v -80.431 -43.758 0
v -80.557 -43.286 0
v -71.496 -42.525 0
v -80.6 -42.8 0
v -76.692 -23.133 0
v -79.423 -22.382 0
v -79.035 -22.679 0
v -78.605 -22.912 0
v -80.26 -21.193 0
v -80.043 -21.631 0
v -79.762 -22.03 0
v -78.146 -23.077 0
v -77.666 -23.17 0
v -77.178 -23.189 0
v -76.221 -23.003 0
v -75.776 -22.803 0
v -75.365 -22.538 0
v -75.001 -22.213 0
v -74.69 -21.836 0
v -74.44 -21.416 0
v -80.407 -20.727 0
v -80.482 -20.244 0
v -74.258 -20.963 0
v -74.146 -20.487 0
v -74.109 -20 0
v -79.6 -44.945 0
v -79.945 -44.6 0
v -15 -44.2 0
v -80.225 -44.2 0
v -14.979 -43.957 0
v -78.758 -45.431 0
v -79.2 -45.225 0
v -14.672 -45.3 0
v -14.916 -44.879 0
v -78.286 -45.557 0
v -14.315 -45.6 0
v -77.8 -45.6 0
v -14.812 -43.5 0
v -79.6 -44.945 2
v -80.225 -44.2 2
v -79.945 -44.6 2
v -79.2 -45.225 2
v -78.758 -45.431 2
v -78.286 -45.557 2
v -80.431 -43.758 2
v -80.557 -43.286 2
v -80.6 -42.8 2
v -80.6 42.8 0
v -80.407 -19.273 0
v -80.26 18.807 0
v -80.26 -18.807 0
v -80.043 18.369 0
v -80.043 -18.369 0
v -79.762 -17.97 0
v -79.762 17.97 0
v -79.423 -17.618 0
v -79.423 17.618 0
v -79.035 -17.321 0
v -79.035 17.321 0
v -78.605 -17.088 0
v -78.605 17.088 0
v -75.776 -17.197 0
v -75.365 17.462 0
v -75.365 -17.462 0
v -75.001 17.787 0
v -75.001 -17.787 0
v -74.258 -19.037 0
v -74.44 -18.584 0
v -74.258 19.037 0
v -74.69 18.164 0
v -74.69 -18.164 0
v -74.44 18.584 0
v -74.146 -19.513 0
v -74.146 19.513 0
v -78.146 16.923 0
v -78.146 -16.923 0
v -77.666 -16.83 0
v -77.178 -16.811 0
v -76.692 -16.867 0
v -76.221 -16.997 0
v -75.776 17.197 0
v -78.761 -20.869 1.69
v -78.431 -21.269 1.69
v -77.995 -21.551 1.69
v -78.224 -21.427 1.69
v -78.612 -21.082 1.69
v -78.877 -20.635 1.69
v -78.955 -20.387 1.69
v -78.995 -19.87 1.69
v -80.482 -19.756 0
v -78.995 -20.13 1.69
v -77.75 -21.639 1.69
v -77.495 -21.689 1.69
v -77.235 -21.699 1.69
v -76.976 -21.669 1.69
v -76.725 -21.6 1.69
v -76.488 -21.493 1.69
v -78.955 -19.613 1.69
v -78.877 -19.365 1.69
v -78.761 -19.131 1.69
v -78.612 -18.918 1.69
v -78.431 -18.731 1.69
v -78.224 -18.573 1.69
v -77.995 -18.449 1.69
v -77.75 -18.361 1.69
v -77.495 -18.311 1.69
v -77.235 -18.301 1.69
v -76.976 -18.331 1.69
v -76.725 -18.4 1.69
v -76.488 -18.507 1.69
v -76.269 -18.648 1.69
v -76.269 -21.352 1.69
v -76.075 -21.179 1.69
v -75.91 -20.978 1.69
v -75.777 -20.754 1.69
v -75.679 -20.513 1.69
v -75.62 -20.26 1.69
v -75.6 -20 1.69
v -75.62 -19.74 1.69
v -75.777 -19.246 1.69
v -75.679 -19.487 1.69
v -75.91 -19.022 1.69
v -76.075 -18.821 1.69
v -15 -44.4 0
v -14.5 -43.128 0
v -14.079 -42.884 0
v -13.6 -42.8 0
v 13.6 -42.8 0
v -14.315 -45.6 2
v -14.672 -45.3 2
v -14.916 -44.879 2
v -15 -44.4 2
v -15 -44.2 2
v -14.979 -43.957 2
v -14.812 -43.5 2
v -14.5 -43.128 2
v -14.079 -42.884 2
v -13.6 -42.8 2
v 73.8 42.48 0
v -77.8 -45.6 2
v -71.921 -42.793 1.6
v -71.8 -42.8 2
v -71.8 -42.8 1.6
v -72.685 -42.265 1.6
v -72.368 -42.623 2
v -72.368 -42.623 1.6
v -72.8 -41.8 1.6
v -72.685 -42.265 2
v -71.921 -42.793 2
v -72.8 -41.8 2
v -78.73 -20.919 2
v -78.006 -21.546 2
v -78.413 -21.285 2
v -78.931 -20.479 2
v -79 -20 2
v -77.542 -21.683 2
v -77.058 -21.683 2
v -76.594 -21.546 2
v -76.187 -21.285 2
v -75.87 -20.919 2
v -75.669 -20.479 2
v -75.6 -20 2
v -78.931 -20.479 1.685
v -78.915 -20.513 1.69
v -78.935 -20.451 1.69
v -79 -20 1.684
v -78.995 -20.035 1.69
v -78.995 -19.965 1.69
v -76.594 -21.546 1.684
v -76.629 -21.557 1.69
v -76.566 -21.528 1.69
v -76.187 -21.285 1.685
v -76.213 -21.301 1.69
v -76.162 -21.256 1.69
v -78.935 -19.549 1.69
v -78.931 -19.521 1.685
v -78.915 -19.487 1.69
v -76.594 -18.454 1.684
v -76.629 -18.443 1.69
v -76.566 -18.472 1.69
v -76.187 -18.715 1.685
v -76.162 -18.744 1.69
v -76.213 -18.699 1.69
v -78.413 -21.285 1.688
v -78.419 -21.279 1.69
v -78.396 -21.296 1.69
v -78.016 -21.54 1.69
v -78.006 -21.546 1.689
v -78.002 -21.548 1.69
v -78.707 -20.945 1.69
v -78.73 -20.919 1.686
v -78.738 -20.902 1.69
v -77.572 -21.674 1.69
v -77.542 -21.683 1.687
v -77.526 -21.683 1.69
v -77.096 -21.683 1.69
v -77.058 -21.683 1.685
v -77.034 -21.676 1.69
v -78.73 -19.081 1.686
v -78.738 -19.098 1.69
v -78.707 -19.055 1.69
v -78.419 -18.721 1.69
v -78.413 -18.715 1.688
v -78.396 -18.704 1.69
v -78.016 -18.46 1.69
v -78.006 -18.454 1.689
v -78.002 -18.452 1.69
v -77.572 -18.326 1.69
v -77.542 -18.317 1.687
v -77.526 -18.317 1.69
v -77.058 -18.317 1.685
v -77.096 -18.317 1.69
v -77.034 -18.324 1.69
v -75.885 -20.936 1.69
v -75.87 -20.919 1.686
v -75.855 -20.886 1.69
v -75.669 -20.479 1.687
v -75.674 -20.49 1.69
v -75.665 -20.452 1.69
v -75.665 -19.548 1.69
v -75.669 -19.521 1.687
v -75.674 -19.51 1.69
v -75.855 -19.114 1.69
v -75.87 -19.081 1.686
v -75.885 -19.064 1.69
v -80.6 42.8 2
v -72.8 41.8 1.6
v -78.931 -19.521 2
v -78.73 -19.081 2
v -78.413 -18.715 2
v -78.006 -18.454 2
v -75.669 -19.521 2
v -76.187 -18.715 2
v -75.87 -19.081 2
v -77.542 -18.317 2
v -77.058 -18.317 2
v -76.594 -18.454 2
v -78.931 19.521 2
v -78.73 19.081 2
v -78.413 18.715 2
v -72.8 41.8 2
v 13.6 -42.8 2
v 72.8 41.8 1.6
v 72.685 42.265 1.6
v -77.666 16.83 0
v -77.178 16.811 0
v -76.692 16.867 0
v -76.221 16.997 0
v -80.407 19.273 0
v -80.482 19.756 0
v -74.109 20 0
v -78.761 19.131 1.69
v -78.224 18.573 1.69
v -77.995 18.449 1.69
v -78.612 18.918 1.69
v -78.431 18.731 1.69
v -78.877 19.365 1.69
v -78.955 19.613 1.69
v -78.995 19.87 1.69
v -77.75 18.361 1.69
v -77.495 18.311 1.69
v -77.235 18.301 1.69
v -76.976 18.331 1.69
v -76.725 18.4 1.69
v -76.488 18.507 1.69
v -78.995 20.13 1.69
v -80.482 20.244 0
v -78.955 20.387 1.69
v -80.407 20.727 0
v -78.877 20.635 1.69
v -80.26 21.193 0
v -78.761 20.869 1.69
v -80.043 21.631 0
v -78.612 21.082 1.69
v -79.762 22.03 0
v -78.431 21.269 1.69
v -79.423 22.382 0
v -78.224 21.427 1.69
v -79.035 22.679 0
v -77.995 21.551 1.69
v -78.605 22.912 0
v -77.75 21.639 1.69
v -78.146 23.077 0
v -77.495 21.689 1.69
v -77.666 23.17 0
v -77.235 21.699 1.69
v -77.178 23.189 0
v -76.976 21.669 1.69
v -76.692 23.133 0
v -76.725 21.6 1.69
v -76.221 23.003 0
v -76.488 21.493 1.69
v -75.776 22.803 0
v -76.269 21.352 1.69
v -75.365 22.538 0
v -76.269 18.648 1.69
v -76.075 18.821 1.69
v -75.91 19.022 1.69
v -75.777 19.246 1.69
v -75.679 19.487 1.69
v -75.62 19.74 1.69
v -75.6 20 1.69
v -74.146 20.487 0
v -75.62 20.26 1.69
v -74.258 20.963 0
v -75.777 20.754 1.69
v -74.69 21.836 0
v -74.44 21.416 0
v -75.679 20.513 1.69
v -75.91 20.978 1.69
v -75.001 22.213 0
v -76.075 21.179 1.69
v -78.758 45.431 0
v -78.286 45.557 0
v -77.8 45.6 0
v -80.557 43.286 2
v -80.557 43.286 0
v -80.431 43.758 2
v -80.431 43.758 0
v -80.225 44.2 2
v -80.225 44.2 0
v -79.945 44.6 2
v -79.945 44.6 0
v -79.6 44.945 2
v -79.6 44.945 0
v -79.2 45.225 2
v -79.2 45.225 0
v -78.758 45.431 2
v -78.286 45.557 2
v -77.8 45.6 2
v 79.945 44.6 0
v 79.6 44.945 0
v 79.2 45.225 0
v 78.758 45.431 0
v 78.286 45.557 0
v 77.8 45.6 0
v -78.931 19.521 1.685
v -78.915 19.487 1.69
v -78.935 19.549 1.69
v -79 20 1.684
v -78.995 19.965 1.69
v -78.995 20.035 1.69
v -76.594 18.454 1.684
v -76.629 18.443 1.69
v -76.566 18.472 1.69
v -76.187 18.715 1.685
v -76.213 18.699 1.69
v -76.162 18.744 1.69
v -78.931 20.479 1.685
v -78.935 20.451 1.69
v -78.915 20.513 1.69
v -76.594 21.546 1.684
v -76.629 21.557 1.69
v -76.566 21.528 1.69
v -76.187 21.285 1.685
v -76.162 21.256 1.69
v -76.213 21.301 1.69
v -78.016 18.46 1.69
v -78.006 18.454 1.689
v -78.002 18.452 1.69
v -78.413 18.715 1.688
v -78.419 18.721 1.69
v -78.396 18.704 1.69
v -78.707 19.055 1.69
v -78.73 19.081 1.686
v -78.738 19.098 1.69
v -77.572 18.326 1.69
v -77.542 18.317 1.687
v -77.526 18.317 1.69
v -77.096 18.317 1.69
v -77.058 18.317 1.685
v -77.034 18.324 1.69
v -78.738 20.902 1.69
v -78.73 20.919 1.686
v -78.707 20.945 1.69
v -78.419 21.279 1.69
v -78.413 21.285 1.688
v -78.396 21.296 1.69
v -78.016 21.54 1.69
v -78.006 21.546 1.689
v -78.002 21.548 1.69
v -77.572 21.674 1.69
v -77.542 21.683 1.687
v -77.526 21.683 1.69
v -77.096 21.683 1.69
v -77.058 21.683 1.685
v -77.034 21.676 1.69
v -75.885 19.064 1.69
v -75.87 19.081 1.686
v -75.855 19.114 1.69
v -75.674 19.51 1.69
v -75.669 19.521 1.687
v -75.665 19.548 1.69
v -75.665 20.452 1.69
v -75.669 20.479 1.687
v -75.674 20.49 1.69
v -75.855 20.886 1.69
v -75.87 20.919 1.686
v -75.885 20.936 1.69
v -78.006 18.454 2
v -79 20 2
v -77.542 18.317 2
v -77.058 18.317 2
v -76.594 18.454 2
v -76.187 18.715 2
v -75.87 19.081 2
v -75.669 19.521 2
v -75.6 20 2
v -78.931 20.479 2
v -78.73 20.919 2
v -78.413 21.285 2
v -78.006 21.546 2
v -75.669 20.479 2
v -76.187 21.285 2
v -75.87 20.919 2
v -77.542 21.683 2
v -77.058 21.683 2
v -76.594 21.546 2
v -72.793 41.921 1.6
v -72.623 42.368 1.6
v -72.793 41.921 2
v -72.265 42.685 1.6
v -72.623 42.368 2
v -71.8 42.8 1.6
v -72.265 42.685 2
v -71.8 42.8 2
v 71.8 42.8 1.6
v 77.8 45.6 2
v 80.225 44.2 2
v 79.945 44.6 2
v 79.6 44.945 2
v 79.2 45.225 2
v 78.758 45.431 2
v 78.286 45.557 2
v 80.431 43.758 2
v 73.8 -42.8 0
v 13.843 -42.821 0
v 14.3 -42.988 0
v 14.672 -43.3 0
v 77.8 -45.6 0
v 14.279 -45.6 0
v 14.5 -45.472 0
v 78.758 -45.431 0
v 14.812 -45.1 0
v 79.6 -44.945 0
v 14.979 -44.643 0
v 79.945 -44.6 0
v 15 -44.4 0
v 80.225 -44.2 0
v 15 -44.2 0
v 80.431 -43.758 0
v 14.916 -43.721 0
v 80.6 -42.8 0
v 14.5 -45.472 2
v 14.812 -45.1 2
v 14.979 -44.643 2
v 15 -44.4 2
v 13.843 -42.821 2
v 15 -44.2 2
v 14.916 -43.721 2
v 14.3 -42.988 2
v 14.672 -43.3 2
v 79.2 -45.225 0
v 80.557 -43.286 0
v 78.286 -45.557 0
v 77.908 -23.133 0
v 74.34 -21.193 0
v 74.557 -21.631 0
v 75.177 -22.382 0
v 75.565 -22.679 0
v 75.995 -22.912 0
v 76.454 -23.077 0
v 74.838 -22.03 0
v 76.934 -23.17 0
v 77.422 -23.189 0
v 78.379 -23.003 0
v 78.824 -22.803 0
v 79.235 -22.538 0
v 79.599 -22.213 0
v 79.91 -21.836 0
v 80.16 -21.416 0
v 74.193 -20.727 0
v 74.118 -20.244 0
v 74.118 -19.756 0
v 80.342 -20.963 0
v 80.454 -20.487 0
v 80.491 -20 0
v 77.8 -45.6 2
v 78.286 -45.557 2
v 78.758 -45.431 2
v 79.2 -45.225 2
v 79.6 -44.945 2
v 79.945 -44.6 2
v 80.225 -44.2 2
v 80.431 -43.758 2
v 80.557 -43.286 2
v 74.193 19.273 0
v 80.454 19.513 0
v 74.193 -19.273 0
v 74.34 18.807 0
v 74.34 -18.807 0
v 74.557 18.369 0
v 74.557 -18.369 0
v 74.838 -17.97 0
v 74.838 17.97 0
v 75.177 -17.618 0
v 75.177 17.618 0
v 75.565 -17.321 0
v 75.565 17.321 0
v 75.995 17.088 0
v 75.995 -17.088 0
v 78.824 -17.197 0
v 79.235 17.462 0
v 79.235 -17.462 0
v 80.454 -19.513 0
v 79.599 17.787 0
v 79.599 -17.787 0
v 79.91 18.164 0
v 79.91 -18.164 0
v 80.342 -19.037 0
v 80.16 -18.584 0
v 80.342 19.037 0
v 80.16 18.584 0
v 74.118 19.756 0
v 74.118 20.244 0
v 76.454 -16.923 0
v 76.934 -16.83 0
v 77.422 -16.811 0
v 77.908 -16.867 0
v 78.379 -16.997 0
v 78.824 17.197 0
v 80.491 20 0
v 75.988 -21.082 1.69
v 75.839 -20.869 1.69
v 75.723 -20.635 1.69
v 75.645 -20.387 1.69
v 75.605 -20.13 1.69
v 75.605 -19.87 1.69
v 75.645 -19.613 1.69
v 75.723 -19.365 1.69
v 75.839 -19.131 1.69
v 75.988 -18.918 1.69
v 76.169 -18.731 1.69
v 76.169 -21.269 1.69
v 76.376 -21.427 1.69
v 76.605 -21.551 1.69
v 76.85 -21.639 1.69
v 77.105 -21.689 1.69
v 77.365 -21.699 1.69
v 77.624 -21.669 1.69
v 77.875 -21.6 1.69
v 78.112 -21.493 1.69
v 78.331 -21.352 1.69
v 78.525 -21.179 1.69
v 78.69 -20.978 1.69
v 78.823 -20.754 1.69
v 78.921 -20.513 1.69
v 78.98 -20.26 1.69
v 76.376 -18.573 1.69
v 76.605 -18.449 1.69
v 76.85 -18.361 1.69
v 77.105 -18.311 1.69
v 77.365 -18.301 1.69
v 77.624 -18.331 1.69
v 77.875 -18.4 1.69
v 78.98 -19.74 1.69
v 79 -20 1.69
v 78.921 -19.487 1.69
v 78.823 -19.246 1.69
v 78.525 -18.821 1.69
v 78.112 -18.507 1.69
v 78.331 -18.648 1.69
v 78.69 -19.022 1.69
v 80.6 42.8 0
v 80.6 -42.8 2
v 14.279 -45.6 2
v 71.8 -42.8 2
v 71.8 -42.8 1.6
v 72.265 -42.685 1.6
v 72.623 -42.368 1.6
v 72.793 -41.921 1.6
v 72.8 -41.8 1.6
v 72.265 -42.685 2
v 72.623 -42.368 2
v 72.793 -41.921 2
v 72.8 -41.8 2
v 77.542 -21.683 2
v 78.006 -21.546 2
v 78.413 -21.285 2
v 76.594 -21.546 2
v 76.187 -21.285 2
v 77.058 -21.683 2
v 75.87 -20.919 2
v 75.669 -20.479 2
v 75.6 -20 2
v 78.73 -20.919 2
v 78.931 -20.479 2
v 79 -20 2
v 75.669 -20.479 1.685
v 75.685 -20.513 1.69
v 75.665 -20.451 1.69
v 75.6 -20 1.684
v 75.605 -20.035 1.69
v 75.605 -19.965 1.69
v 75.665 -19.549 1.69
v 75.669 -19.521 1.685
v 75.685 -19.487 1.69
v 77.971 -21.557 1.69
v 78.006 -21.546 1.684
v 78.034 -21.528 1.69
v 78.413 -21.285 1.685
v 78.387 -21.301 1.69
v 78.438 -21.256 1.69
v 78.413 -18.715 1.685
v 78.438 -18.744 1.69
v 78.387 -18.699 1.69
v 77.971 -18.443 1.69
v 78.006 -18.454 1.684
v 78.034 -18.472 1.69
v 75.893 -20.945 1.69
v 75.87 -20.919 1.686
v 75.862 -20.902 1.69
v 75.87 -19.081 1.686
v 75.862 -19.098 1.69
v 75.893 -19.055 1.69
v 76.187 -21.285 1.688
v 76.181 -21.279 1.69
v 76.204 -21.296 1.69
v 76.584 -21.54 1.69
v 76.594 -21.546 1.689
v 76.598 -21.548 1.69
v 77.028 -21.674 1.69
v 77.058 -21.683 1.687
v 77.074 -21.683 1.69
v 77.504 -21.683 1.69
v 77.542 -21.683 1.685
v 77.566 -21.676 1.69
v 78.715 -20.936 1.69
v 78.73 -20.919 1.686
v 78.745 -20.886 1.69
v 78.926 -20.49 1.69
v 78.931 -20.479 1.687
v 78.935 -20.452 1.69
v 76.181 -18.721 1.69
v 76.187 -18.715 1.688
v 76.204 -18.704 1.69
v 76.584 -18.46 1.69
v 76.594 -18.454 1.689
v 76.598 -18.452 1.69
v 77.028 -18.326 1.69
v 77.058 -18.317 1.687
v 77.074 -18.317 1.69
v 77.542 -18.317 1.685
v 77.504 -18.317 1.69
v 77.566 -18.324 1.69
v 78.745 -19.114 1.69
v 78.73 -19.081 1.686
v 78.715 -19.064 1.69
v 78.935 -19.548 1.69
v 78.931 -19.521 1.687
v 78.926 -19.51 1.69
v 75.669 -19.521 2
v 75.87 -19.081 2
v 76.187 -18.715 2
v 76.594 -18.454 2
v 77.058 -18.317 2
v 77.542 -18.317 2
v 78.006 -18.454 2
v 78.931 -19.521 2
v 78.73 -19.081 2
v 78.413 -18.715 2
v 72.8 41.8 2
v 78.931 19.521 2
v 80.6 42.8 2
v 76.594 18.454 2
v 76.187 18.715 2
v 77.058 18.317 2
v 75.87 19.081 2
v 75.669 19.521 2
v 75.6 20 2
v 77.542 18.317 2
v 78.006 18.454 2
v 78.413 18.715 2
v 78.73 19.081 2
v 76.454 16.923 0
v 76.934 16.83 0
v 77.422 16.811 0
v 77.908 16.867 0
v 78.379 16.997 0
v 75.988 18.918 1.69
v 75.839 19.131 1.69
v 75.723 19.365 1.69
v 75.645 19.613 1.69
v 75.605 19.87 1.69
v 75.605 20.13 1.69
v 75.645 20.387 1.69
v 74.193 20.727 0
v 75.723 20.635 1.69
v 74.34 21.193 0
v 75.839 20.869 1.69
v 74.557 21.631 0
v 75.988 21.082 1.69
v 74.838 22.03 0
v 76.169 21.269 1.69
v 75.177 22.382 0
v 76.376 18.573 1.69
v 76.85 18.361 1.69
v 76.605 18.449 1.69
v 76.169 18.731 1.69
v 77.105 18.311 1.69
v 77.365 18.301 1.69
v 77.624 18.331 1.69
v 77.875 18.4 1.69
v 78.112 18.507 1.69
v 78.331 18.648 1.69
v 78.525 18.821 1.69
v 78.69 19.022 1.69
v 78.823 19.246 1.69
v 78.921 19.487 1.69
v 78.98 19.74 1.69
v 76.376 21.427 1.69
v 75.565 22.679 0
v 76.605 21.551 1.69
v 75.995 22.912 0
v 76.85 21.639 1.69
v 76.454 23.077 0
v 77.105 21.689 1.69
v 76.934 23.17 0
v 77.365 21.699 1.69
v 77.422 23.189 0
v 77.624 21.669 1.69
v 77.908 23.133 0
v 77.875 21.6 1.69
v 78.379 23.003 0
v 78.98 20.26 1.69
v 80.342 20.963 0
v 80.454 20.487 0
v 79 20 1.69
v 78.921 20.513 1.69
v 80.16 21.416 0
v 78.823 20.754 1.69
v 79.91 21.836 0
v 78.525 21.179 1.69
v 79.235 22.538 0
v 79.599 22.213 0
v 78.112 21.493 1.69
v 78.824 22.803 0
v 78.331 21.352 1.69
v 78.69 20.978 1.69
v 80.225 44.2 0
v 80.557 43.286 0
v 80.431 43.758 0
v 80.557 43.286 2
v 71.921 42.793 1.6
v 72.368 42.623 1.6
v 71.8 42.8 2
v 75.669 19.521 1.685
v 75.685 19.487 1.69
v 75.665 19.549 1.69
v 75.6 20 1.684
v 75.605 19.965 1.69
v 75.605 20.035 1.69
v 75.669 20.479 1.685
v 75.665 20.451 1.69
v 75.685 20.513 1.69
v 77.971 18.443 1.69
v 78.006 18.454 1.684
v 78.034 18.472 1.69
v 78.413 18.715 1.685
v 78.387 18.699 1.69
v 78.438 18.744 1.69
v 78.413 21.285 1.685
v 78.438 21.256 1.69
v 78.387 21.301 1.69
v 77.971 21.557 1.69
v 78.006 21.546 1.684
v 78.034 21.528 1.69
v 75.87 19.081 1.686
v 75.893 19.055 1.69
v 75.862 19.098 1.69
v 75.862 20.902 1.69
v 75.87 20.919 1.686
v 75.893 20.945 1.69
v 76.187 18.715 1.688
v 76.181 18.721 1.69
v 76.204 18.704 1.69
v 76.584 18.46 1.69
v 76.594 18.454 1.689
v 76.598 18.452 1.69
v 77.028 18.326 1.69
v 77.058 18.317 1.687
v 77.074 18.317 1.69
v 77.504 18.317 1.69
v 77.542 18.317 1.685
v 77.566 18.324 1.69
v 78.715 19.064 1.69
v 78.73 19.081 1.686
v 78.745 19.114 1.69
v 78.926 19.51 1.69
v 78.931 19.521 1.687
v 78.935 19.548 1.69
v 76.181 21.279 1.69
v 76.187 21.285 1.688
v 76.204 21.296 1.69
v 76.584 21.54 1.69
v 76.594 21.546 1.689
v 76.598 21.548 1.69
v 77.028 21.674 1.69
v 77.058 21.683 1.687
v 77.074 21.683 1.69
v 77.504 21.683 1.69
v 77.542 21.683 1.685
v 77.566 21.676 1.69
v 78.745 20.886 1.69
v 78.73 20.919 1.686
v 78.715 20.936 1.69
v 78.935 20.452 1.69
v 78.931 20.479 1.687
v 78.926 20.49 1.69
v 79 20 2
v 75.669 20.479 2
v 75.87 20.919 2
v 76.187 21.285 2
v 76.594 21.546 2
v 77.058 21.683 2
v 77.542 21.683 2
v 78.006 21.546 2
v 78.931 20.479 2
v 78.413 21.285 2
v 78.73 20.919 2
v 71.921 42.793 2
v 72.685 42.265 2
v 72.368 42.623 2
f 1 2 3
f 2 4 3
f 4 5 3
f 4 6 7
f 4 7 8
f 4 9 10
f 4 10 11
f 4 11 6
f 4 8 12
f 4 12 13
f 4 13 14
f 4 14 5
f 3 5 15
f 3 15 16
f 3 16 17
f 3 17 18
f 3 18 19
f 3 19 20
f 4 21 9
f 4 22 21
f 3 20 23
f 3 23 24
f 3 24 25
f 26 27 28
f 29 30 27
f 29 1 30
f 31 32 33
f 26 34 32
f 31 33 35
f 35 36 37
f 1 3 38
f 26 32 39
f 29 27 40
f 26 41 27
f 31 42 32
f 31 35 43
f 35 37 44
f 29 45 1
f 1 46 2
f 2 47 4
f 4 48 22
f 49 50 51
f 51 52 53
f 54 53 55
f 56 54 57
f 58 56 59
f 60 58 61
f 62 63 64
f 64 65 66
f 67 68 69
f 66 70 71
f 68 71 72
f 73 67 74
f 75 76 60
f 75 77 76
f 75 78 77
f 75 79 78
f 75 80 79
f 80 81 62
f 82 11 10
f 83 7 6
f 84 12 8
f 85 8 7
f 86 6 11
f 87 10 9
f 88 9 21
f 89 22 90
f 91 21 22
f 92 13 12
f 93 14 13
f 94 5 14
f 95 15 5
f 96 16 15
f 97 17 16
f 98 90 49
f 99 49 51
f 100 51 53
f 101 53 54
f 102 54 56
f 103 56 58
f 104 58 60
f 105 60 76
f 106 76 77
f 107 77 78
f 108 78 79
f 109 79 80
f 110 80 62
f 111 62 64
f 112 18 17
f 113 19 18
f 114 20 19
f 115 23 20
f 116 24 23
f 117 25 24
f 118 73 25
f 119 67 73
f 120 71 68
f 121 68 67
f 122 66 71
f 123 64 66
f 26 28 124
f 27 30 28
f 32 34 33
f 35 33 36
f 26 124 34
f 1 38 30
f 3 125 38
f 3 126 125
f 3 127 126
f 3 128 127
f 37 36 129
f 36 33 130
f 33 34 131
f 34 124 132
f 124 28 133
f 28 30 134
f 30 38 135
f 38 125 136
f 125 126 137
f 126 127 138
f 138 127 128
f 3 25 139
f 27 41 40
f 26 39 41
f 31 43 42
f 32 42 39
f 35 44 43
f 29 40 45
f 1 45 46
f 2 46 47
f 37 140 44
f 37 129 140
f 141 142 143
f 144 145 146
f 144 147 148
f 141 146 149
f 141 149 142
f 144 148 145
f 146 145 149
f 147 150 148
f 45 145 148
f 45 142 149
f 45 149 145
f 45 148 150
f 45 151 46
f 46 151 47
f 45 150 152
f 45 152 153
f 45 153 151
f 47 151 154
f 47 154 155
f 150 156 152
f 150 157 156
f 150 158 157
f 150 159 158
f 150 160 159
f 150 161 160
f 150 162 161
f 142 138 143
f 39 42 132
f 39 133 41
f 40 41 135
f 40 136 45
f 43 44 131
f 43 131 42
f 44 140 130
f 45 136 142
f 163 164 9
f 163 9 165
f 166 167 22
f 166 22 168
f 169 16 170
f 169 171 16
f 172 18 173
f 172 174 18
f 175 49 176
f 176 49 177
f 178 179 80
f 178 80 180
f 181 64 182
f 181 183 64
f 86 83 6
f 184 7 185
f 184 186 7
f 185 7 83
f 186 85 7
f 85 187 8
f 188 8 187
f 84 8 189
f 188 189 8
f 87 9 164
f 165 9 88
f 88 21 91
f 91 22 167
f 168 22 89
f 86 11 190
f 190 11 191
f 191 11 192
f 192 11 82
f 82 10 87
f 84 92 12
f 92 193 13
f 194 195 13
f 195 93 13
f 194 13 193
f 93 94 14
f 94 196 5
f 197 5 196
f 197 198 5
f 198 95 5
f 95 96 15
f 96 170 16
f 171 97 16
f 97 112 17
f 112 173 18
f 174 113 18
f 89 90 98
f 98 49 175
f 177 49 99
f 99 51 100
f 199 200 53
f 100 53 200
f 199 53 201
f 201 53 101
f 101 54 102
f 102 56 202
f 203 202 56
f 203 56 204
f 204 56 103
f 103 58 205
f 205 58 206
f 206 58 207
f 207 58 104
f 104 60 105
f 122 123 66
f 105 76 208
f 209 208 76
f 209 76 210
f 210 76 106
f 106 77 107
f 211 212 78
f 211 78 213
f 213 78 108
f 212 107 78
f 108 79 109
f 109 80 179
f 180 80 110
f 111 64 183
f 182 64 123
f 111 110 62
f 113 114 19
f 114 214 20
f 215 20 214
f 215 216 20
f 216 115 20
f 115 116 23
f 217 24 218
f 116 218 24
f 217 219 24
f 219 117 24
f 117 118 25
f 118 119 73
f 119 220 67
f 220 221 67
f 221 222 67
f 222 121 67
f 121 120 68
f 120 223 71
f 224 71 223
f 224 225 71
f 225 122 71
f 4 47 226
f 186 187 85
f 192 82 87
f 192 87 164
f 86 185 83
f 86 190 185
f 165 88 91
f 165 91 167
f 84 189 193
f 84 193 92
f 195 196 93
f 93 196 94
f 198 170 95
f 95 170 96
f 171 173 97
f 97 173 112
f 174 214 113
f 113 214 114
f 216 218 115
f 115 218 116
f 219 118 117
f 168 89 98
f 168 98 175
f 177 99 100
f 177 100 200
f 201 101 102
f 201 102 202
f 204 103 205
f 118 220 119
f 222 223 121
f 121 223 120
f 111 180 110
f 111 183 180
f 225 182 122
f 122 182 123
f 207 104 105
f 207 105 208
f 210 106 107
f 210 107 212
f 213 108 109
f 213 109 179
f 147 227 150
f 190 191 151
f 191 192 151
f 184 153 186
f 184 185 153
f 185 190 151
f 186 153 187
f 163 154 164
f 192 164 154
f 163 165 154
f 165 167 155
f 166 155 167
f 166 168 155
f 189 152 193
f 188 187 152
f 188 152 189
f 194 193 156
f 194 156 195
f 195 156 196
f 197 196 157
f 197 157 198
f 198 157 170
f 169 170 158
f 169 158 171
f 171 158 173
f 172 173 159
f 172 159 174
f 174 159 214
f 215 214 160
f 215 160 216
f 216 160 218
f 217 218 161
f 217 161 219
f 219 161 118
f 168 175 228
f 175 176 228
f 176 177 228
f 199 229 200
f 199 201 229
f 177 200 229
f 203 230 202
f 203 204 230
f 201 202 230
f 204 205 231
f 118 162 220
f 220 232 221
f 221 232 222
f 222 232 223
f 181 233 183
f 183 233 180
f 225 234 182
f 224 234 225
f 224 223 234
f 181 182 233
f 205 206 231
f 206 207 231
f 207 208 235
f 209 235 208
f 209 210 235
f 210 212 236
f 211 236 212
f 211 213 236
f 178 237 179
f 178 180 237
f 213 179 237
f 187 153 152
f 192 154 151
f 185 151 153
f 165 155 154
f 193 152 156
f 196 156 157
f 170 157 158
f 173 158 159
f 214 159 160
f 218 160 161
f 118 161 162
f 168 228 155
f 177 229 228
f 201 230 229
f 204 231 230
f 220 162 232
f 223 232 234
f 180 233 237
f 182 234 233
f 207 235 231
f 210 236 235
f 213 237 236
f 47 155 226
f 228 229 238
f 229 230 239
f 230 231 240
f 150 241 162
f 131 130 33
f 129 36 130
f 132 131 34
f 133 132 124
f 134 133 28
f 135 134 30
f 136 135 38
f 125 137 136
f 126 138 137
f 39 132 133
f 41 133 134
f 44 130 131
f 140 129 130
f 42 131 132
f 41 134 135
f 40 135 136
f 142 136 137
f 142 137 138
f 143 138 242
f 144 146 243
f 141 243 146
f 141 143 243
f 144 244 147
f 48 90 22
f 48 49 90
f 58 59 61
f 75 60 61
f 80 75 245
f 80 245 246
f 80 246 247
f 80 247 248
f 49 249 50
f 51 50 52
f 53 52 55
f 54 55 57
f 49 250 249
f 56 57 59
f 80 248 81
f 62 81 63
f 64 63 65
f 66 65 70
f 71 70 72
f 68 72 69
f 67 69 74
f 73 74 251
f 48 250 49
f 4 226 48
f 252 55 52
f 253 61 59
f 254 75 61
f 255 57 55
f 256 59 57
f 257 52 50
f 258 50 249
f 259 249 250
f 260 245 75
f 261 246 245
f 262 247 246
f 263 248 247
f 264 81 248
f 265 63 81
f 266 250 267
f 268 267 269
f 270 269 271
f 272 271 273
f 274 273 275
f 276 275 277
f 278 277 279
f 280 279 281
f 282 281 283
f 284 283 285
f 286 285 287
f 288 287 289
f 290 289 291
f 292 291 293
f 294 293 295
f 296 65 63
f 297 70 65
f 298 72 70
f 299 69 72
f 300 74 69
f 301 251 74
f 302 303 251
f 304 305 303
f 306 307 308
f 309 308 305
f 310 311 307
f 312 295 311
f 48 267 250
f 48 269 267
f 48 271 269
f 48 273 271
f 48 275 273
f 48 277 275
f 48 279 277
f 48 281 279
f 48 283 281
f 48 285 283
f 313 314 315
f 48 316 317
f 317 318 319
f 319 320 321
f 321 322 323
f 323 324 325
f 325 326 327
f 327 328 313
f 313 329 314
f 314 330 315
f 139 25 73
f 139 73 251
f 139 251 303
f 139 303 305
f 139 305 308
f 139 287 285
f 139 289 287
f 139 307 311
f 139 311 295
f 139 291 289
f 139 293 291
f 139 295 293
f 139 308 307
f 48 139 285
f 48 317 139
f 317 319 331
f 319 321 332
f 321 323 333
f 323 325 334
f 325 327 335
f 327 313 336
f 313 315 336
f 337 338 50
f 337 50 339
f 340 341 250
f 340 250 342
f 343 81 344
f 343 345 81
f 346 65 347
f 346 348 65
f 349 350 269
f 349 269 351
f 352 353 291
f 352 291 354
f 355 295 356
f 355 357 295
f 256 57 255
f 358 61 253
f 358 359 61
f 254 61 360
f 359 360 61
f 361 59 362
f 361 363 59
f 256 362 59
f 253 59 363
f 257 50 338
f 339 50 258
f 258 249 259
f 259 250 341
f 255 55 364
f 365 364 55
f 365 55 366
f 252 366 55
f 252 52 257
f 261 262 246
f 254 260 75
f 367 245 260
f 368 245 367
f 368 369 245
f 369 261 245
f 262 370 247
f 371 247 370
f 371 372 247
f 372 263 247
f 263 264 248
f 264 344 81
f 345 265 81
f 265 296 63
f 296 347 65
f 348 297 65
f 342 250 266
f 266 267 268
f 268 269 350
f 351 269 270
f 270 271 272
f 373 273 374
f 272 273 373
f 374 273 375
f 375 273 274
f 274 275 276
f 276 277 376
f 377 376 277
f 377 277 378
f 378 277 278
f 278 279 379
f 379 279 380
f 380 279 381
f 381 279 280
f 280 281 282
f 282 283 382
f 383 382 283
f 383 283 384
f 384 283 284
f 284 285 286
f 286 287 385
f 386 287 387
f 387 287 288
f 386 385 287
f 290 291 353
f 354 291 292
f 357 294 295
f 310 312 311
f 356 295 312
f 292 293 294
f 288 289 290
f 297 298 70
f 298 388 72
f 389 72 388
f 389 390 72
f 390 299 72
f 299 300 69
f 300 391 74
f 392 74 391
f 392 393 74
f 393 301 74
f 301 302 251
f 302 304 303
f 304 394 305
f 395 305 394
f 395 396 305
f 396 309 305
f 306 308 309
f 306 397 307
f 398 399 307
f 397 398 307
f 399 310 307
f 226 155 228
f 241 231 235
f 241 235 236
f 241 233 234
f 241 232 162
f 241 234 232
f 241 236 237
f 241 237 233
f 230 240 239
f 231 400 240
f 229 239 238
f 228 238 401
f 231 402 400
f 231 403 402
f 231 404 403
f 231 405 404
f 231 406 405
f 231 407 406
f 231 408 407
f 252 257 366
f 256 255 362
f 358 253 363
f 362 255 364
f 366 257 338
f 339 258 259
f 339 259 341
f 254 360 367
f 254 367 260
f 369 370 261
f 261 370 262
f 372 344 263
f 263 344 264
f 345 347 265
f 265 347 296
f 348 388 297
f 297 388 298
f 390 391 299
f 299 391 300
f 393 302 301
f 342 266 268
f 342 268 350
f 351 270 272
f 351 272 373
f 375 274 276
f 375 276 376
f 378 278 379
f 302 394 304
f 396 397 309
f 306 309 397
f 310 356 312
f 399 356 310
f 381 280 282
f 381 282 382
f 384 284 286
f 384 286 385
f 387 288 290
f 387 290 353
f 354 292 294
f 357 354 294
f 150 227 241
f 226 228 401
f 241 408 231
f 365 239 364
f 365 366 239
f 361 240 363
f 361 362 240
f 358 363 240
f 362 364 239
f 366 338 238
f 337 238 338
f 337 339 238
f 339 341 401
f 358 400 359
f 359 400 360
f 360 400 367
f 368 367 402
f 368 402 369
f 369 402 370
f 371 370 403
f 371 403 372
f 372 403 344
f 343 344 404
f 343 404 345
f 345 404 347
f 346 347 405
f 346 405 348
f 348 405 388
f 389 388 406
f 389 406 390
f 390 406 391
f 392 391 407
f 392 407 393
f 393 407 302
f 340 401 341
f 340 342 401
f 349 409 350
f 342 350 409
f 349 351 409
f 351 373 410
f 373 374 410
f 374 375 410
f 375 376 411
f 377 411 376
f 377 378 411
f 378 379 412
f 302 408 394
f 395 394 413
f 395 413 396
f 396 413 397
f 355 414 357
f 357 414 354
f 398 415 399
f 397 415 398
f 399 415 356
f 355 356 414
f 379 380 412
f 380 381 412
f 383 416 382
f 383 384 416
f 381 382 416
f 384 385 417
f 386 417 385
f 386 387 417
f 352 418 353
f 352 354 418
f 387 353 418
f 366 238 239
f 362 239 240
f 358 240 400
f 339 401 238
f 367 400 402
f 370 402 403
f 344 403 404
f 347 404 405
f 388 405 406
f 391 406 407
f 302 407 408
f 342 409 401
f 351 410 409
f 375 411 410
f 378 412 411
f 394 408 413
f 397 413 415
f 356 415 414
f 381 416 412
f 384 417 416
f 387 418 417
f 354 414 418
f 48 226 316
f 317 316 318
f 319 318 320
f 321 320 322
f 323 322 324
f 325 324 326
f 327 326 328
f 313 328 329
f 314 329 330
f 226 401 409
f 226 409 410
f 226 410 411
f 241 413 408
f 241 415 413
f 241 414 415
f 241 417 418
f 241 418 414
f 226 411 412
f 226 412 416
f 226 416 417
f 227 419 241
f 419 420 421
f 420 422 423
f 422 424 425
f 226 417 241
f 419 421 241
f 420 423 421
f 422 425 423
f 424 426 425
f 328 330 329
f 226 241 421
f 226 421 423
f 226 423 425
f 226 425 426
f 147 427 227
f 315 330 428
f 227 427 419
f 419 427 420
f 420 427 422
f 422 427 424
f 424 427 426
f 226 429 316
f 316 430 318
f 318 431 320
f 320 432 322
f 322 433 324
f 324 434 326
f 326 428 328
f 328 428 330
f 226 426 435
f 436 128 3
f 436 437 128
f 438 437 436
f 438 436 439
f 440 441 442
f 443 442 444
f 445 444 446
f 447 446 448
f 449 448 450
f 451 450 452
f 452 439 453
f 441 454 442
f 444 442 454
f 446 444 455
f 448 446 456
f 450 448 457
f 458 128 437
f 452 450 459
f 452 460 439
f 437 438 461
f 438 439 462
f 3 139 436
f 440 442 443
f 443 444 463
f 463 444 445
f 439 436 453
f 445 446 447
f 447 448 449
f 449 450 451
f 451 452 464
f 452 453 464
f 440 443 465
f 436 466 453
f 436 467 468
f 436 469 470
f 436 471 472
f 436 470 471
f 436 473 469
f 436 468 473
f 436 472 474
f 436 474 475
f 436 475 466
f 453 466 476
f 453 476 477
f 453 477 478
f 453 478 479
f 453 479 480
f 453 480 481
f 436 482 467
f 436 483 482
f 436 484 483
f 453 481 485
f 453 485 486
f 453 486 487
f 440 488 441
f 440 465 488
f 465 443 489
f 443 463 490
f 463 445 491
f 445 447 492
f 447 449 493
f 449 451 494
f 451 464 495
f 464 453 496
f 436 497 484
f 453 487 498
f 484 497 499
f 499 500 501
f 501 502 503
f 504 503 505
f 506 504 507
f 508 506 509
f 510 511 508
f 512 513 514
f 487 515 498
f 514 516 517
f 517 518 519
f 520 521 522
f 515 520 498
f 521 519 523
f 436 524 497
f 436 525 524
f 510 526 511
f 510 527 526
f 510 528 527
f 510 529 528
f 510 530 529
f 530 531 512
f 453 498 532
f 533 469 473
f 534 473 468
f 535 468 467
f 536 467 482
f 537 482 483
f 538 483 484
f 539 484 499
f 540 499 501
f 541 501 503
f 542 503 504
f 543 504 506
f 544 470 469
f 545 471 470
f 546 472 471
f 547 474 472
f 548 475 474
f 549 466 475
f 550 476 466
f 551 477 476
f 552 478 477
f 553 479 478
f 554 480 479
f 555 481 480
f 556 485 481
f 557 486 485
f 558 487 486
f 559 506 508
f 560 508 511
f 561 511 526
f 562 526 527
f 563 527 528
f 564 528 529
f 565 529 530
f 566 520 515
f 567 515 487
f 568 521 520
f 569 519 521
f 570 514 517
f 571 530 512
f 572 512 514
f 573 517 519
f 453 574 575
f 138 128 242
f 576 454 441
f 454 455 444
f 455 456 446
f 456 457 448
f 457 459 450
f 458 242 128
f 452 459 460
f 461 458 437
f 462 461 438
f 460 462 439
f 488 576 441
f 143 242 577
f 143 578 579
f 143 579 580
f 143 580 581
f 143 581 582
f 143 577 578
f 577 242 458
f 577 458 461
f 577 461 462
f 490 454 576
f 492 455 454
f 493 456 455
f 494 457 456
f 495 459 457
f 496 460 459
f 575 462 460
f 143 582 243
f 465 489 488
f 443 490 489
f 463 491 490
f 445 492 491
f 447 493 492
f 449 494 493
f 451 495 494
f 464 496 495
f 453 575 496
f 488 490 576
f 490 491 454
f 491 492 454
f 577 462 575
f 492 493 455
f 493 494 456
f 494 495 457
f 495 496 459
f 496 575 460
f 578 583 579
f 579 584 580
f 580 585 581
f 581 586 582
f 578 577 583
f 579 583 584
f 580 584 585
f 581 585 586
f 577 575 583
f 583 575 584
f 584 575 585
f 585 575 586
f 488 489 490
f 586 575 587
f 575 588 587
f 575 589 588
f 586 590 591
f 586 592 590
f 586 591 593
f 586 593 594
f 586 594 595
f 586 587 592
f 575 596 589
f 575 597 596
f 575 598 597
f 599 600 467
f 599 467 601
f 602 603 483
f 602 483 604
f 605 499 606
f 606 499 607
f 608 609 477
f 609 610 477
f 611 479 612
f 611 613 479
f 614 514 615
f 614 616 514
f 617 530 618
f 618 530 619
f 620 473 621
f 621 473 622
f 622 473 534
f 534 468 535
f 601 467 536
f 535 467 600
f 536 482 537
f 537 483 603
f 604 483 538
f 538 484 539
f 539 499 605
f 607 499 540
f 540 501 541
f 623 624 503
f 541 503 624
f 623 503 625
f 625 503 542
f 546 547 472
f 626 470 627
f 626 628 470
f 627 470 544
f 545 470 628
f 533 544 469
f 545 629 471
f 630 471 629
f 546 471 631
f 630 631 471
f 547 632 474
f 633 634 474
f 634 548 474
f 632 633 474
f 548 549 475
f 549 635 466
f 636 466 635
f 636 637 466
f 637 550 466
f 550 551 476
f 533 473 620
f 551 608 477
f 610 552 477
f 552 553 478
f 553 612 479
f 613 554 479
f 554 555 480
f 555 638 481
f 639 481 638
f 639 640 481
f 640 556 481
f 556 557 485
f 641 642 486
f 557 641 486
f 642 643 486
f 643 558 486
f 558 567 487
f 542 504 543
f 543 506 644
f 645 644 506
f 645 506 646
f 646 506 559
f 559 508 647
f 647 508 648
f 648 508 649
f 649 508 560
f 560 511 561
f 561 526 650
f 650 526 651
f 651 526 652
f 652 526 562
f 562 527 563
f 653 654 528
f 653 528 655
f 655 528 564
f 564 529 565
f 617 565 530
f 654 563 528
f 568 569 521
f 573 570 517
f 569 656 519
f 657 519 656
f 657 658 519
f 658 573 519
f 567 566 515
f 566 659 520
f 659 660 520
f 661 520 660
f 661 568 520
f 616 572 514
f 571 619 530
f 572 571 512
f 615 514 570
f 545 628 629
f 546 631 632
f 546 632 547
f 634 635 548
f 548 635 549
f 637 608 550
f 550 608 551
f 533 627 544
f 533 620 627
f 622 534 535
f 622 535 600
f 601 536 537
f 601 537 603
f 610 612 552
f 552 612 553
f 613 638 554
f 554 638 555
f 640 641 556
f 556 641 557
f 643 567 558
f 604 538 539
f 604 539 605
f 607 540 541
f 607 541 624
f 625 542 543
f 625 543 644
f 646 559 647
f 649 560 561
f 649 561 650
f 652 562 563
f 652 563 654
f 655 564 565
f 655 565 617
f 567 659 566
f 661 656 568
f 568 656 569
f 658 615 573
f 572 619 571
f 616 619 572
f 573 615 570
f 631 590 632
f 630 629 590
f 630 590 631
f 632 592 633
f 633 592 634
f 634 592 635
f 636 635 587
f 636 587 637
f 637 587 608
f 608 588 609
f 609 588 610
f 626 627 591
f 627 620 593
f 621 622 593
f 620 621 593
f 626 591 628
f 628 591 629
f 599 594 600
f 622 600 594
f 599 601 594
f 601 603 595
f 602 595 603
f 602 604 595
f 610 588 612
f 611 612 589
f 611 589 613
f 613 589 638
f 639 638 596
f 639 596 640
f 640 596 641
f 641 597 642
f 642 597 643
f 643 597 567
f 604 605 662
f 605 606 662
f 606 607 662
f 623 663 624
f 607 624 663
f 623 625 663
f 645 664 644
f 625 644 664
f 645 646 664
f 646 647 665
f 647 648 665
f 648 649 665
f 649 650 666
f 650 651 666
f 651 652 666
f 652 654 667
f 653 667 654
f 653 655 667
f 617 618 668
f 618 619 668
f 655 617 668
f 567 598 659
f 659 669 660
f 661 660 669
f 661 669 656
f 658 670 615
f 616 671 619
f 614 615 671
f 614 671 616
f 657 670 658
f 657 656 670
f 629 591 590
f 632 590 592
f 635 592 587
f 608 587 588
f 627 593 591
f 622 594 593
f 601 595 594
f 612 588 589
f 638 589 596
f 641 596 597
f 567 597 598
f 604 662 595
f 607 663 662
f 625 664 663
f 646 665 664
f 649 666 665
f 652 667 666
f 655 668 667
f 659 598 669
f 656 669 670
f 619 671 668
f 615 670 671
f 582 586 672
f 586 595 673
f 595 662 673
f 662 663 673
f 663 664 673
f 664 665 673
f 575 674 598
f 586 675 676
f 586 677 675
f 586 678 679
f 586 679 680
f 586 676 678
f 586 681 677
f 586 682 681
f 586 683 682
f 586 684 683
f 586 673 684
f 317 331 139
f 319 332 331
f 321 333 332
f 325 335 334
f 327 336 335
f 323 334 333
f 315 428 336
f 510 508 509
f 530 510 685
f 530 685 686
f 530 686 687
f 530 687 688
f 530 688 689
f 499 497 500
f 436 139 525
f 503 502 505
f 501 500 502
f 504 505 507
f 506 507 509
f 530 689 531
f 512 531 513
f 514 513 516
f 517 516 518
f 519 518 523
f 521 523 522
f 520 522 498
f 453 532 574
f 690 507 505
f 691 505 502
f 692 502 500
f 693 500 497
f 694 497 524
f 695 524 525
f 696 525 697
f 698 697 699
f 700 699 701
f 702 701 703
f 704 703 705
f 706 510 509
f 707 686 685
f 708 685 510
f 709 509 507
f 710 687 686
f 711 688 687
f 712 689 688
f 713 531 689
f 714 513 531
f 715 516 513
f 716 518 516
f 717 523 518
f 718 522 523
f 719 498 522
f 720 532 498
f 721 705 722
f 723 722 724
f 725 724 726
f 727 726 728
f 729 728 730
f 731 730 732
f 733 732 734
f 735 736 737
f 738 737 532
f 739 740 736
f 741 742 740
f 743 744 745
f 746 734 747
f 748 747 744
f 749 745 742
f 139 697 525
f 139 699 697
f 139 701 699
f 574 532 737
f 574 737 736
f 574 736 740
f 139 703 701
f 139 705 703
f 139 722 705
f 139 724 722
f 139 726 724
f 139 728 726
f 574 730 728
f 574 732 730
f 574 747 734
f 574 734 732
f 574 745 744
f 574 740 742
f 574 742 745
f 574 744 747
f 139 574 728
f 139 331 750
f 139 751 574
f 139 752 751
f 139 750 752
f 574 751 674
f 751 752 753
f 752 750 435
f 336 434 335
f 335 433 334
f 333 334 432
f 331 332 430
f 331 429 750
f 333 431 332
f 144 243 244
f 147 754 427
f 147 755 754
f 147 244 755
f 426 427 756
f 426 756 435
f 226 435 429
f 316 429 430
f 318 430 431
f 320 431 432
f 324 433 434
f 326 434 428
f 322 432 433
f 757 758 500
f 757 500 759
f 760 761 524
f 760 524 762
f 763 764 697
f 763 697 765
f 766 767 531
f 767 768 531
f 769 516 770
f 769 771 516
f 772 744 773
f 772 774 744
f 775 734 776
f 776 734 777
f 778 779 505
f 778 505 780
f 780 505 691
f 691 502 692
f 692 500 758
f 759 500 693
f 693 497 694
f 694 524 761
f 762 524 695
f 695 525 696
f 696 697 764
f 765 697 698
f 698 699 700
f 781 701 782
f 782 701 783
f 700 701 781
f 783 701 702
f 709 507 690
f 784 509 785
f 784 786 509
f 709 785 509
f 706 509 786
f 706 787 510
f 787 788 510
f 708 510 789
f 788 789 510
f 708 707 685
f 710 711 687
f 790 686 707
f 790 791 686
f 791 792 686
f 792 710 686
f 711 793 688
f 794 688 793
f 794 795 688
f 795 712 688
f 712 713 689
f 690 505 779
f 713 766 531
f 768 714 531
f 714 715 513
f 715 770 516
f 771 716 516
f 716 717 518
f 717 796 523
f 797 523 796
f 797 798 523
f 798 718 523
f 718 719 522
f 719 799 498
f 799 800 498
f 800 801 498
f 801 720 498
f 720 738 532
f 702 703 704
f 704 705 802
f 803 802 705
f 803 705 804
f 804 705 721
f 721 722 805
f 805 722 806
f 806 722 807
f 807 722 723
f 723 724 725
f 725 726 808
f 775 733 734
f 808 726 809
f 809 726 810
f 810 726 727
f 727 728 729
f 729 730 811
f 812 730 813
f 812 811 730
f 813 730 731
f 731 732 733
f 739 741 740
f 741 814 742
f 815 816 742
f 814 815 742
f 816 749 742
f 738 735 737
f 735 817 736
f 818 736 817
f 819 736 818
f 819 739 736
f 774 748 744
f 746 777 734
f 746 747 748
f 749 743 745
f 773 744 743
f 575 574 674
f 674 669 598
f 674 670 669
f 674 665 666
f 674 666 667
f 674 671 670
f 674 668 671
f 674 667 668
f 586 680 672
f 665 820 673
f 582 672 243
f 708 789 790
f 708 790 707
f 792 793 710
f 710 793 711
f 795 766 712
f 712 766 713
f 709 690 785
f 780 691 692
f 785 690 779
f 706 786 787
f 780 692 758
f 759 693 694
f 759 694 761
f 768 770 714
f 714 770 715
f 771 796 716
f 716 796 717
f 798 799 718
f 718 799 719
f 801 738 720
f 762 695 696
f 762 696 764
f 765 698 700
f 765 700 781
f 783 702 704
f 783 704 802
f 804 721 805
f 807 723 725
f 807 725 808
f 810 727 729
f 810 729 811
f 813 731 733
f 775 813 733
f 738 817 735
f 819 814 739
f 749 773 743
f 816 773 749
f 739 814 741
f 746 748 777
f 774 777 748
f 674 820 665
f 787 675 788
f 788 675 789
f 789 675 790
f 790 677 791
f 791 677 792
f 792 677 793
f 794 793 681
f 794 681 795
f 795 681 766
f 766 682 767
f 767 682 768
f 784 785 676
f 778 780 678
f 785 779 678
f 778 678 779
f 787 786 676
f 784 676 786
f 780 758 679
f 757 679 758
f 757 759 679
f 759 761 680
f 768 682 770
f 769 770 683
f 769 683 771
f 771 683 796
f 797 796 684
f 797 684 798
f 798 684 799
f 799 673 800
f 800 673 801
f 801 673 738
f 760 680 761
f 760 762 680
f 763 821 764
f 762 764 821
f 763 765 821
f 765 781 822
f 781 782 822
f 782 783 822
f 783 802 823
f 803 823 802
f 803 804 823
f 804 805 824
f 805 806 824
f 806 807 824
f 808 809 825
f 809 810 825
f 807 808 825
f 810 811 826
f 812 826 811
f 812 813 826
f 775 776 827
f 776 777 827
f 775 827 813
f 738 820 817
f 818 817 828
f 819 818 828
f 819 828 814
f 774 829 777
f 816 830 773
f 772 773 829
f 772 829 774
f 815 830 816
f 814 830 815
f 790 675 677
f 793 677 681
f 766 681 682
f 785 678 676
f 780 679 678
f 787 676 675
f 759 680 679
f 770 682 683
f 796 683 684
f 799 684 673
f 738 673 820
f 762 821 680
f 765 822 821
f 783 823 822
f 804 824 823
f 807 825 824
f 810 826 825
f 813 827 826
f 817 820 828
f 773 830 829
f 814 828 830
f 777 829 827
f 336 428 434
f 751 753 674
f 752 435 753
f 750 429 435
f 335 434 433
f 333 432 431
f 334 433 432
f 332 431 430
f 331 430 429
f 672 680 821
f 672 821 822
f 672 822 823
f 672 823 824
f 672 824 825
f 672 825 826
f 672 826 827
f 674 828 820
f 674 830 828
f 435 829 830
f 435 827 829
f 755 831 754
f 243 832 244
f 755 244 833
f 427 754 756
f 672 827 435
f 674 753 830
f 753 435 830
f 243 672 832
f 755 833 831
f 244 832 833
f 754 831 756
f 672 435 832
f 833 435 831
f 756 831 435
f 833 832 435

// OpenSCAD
// file: lib/lib.scad
// Shared helpers. Include AFTER params.scad (needs TOL, M3_* etc.).
$fa = 4; $fs = 0.5;

module rrect(size, r) {            // 2D rounded rectangle, centred
    r2 = min(r, min(size[0], size[1]) / 2 - 0.001);
    offset(r = r2) square([size[0] - 2 * r2, size[1] - 2 * r2], center = true);
}
module rbox(size, r, center_xy = true) {   // box with rounded vertical edges
    translate(center_xy ? [0, 0, 0] : [size[0] / 2, size[1] / 2, 0])
        linear_extrude(size[2]) rrect([size[0], size[1]], r);
}
module rbox_at(x0, x1, y0, y1, z0, z1, r = 0.01) {
    translate([(x0 + x1) / 2, (y0 + y1) / 2, z0]) rbox([x1 - x0, y1 - y0, z1 - z0], r);
}
module box_at(x0, x1, y0, y1, z0, z1) { translate([x0, y0, z0]) cube([x1 - x0, y1 - y0, z1 - z0]); }

module ring(ro, ri, h) { difference() { cylinder(r = ro, h = h); translate([0, 0, -1]) cylinder(r = ri, h = h + 2); } }
module ring_sector(ro, ri, h, a0, a1) {
    intersection() {
        ring(ro, ri, h);
        linear_extrude(h) polygon(concat([[0, 0]], [for (a = [a0 : (a1 - a0) / 24 : a1]) 2 * ro * [cos(a), sin(a)]]));
    }
}
// teardrop hole along an axis lying horizontal (axis = Y after rotation), printable w/o support
module teardrop2d(d) { union() { circle(d = d); rotate(45) square(d / 2); } }
// vertical heat-set insert hole, opening at z=0 going +z (depth l)
module insert_hole(l = M3_INSERT_L) { translate([0, 0, -EPS]) cylinder(d = M3_INSERT_D, h = l + EPS); }
module m3_clear(l) { translate([0, 0, -EPS]) cylinder(d = M3_CLEAR, h = l + 2 * EPS); }
module m3_csk(l) {  // countersunk clearance from z=0 upward, head at z=0 side
    translate([0, 0, -EPS]) { cylinder(d = M3_CLEAR, h = l + 2 * EPS); cylinder(d1 = 6.4, d2 = M3_CLEAR, h = 1.7); }
}
module card2d() { rrect([CARD_L, CARD_W], CARD_R); }
module card_at(cy, z) { translate([0, cy, z]) linear_extrude(CARD_T) card2d(); }

// ---- gears ----
function _inv(a) = tan(a) - a * PI_ / 180;           // involute function, a in deg
function _invpt(rb, r, ang0, s) = let(al = acos(rb / r), th = ang0 - s * (_inv(al) * 180 / PI_)) [r * cos(th), r * sin(th)];
module involute_gear2d(m, z, pa = 20, clearance = 0.05) {
    rp = m * z / 2; rb = rp * cos(pa); ra = rp + m - clearance; rf = rp - 1.25 * m;
    half = 90 / z + _inv(pa) * 180 / PI_;            // tooth half-angle at base (deg)
    n = 8;
    rs = [for (i = [0 : n]) max(rb, rf) + (ra - max(rb, rf)) * i / n];
    union() {
        circle(r = rf, $fn = z * 4);
        for (k = [0 : z - 1]) rotate(k * 360 / z) polygon(concat(
            [[rf * cos(-half), rf * sin(-half)]],
            [for (r = rs) let(p = _invpt(rb, r, half, 1)) [p[0], -p[1]]],
            [for (i = [n : -1 : 0]) _invpt(rb, rs[i], half, 1)],
            [[rf * cos(half), rf * sin(half)]]));
    }
}
// straight gear rack (2D in XY: teeth along +x, pointing -y, pitch line at y=0)
module gear_rack2d(m, len, back = 3) {
    p = PI_ * m; ad = m; de = 1.25 * m; t = tan(20);
    n = ceil(len / p) + 1;
    intersection() {
        union() {
            translate([0, de]) square([len, back]);
            for (i = [0 : n]) translate([i * p - p / 4, 0]) polygon([
                [-(p / 4 + de * t), de + 0.01], [p / 4 + de * t + 0.01, de + 0.01],
                [p / 4 - ad * t, -ad], [-(p / 4 - ad * t), -ad] ]);
        }
        translate([0, -ad - 1]) square([len, ad + de + back + 2]);
    }
}
// GT2 belt-tooth profile ring (teeth outward), 2D
module gt2_ring2d(n, r_land, ri) {
    union() {
        difference() { circle(r = r_land + 0.01, $fn = n * 2); circle(r = ri, $fn = n * 2); }
        for (k = [0 : n - 1]) rotate(k * 360 / n)
            translate([r_land, 0]) hull() { translate([-0.2, 0]) square([0.2, 1.0], center = true); translate([0.25, 0]) circle(r = 0.5, $fn = 12); }
    }
}
// main file
// Battery door: plug + flange in the floor rebate, 4 x M3 into floor inserts.
// The battery drops out downward. Print: flat, outside face on bed.
include <params.scad>
include <lib/lib.scad>
module battery_door() {
    difference() {
        union() {
            difference() {   // flange in the rebate (2 mm: takes the CSK heads)
                rbox_at(-CR_XI - DOOR_REBATE_X + GAP, CR_XI + DOOR_REBATE_X - GAP, -CR_YI - DOOR_REBATE_Y + GAP, CR_YI + DOOR_REBATE_Y - GAP, 0, DOOR_REBATE_T, 2.8);
                rbox_at(-CR_XI, CR_XI, -CR_YI, CR_YI, -1, 5, 1);
            }
            rbox_at(-CR_XI + GAP, CR_XI - GAP, -CR_YI + GAP, CR_YI - GAP, 0, FLOOR_T, 0.8);   // plug: battery rests on it at FLOOR_T   // geom
            rbox_at(-CR_XI - 1, CR_XI + 1, -CR_YI - 1, CR_YI + 1, 0, FLOOR_T, 1);
        }
        for (p = DOOR_SCREWS) translate([p[0], p[1], 0]) m3_csk(DOOR_REBATE_T + 1);
        translate([0, -CR_YI - DOOR_REBATE_Y + 1.5, -1]) rbox([30, 3, 5], 1.4);  // finger notch through the flange edge
    }
}
module battery_door_print() battery_door();
battery_door_print();
